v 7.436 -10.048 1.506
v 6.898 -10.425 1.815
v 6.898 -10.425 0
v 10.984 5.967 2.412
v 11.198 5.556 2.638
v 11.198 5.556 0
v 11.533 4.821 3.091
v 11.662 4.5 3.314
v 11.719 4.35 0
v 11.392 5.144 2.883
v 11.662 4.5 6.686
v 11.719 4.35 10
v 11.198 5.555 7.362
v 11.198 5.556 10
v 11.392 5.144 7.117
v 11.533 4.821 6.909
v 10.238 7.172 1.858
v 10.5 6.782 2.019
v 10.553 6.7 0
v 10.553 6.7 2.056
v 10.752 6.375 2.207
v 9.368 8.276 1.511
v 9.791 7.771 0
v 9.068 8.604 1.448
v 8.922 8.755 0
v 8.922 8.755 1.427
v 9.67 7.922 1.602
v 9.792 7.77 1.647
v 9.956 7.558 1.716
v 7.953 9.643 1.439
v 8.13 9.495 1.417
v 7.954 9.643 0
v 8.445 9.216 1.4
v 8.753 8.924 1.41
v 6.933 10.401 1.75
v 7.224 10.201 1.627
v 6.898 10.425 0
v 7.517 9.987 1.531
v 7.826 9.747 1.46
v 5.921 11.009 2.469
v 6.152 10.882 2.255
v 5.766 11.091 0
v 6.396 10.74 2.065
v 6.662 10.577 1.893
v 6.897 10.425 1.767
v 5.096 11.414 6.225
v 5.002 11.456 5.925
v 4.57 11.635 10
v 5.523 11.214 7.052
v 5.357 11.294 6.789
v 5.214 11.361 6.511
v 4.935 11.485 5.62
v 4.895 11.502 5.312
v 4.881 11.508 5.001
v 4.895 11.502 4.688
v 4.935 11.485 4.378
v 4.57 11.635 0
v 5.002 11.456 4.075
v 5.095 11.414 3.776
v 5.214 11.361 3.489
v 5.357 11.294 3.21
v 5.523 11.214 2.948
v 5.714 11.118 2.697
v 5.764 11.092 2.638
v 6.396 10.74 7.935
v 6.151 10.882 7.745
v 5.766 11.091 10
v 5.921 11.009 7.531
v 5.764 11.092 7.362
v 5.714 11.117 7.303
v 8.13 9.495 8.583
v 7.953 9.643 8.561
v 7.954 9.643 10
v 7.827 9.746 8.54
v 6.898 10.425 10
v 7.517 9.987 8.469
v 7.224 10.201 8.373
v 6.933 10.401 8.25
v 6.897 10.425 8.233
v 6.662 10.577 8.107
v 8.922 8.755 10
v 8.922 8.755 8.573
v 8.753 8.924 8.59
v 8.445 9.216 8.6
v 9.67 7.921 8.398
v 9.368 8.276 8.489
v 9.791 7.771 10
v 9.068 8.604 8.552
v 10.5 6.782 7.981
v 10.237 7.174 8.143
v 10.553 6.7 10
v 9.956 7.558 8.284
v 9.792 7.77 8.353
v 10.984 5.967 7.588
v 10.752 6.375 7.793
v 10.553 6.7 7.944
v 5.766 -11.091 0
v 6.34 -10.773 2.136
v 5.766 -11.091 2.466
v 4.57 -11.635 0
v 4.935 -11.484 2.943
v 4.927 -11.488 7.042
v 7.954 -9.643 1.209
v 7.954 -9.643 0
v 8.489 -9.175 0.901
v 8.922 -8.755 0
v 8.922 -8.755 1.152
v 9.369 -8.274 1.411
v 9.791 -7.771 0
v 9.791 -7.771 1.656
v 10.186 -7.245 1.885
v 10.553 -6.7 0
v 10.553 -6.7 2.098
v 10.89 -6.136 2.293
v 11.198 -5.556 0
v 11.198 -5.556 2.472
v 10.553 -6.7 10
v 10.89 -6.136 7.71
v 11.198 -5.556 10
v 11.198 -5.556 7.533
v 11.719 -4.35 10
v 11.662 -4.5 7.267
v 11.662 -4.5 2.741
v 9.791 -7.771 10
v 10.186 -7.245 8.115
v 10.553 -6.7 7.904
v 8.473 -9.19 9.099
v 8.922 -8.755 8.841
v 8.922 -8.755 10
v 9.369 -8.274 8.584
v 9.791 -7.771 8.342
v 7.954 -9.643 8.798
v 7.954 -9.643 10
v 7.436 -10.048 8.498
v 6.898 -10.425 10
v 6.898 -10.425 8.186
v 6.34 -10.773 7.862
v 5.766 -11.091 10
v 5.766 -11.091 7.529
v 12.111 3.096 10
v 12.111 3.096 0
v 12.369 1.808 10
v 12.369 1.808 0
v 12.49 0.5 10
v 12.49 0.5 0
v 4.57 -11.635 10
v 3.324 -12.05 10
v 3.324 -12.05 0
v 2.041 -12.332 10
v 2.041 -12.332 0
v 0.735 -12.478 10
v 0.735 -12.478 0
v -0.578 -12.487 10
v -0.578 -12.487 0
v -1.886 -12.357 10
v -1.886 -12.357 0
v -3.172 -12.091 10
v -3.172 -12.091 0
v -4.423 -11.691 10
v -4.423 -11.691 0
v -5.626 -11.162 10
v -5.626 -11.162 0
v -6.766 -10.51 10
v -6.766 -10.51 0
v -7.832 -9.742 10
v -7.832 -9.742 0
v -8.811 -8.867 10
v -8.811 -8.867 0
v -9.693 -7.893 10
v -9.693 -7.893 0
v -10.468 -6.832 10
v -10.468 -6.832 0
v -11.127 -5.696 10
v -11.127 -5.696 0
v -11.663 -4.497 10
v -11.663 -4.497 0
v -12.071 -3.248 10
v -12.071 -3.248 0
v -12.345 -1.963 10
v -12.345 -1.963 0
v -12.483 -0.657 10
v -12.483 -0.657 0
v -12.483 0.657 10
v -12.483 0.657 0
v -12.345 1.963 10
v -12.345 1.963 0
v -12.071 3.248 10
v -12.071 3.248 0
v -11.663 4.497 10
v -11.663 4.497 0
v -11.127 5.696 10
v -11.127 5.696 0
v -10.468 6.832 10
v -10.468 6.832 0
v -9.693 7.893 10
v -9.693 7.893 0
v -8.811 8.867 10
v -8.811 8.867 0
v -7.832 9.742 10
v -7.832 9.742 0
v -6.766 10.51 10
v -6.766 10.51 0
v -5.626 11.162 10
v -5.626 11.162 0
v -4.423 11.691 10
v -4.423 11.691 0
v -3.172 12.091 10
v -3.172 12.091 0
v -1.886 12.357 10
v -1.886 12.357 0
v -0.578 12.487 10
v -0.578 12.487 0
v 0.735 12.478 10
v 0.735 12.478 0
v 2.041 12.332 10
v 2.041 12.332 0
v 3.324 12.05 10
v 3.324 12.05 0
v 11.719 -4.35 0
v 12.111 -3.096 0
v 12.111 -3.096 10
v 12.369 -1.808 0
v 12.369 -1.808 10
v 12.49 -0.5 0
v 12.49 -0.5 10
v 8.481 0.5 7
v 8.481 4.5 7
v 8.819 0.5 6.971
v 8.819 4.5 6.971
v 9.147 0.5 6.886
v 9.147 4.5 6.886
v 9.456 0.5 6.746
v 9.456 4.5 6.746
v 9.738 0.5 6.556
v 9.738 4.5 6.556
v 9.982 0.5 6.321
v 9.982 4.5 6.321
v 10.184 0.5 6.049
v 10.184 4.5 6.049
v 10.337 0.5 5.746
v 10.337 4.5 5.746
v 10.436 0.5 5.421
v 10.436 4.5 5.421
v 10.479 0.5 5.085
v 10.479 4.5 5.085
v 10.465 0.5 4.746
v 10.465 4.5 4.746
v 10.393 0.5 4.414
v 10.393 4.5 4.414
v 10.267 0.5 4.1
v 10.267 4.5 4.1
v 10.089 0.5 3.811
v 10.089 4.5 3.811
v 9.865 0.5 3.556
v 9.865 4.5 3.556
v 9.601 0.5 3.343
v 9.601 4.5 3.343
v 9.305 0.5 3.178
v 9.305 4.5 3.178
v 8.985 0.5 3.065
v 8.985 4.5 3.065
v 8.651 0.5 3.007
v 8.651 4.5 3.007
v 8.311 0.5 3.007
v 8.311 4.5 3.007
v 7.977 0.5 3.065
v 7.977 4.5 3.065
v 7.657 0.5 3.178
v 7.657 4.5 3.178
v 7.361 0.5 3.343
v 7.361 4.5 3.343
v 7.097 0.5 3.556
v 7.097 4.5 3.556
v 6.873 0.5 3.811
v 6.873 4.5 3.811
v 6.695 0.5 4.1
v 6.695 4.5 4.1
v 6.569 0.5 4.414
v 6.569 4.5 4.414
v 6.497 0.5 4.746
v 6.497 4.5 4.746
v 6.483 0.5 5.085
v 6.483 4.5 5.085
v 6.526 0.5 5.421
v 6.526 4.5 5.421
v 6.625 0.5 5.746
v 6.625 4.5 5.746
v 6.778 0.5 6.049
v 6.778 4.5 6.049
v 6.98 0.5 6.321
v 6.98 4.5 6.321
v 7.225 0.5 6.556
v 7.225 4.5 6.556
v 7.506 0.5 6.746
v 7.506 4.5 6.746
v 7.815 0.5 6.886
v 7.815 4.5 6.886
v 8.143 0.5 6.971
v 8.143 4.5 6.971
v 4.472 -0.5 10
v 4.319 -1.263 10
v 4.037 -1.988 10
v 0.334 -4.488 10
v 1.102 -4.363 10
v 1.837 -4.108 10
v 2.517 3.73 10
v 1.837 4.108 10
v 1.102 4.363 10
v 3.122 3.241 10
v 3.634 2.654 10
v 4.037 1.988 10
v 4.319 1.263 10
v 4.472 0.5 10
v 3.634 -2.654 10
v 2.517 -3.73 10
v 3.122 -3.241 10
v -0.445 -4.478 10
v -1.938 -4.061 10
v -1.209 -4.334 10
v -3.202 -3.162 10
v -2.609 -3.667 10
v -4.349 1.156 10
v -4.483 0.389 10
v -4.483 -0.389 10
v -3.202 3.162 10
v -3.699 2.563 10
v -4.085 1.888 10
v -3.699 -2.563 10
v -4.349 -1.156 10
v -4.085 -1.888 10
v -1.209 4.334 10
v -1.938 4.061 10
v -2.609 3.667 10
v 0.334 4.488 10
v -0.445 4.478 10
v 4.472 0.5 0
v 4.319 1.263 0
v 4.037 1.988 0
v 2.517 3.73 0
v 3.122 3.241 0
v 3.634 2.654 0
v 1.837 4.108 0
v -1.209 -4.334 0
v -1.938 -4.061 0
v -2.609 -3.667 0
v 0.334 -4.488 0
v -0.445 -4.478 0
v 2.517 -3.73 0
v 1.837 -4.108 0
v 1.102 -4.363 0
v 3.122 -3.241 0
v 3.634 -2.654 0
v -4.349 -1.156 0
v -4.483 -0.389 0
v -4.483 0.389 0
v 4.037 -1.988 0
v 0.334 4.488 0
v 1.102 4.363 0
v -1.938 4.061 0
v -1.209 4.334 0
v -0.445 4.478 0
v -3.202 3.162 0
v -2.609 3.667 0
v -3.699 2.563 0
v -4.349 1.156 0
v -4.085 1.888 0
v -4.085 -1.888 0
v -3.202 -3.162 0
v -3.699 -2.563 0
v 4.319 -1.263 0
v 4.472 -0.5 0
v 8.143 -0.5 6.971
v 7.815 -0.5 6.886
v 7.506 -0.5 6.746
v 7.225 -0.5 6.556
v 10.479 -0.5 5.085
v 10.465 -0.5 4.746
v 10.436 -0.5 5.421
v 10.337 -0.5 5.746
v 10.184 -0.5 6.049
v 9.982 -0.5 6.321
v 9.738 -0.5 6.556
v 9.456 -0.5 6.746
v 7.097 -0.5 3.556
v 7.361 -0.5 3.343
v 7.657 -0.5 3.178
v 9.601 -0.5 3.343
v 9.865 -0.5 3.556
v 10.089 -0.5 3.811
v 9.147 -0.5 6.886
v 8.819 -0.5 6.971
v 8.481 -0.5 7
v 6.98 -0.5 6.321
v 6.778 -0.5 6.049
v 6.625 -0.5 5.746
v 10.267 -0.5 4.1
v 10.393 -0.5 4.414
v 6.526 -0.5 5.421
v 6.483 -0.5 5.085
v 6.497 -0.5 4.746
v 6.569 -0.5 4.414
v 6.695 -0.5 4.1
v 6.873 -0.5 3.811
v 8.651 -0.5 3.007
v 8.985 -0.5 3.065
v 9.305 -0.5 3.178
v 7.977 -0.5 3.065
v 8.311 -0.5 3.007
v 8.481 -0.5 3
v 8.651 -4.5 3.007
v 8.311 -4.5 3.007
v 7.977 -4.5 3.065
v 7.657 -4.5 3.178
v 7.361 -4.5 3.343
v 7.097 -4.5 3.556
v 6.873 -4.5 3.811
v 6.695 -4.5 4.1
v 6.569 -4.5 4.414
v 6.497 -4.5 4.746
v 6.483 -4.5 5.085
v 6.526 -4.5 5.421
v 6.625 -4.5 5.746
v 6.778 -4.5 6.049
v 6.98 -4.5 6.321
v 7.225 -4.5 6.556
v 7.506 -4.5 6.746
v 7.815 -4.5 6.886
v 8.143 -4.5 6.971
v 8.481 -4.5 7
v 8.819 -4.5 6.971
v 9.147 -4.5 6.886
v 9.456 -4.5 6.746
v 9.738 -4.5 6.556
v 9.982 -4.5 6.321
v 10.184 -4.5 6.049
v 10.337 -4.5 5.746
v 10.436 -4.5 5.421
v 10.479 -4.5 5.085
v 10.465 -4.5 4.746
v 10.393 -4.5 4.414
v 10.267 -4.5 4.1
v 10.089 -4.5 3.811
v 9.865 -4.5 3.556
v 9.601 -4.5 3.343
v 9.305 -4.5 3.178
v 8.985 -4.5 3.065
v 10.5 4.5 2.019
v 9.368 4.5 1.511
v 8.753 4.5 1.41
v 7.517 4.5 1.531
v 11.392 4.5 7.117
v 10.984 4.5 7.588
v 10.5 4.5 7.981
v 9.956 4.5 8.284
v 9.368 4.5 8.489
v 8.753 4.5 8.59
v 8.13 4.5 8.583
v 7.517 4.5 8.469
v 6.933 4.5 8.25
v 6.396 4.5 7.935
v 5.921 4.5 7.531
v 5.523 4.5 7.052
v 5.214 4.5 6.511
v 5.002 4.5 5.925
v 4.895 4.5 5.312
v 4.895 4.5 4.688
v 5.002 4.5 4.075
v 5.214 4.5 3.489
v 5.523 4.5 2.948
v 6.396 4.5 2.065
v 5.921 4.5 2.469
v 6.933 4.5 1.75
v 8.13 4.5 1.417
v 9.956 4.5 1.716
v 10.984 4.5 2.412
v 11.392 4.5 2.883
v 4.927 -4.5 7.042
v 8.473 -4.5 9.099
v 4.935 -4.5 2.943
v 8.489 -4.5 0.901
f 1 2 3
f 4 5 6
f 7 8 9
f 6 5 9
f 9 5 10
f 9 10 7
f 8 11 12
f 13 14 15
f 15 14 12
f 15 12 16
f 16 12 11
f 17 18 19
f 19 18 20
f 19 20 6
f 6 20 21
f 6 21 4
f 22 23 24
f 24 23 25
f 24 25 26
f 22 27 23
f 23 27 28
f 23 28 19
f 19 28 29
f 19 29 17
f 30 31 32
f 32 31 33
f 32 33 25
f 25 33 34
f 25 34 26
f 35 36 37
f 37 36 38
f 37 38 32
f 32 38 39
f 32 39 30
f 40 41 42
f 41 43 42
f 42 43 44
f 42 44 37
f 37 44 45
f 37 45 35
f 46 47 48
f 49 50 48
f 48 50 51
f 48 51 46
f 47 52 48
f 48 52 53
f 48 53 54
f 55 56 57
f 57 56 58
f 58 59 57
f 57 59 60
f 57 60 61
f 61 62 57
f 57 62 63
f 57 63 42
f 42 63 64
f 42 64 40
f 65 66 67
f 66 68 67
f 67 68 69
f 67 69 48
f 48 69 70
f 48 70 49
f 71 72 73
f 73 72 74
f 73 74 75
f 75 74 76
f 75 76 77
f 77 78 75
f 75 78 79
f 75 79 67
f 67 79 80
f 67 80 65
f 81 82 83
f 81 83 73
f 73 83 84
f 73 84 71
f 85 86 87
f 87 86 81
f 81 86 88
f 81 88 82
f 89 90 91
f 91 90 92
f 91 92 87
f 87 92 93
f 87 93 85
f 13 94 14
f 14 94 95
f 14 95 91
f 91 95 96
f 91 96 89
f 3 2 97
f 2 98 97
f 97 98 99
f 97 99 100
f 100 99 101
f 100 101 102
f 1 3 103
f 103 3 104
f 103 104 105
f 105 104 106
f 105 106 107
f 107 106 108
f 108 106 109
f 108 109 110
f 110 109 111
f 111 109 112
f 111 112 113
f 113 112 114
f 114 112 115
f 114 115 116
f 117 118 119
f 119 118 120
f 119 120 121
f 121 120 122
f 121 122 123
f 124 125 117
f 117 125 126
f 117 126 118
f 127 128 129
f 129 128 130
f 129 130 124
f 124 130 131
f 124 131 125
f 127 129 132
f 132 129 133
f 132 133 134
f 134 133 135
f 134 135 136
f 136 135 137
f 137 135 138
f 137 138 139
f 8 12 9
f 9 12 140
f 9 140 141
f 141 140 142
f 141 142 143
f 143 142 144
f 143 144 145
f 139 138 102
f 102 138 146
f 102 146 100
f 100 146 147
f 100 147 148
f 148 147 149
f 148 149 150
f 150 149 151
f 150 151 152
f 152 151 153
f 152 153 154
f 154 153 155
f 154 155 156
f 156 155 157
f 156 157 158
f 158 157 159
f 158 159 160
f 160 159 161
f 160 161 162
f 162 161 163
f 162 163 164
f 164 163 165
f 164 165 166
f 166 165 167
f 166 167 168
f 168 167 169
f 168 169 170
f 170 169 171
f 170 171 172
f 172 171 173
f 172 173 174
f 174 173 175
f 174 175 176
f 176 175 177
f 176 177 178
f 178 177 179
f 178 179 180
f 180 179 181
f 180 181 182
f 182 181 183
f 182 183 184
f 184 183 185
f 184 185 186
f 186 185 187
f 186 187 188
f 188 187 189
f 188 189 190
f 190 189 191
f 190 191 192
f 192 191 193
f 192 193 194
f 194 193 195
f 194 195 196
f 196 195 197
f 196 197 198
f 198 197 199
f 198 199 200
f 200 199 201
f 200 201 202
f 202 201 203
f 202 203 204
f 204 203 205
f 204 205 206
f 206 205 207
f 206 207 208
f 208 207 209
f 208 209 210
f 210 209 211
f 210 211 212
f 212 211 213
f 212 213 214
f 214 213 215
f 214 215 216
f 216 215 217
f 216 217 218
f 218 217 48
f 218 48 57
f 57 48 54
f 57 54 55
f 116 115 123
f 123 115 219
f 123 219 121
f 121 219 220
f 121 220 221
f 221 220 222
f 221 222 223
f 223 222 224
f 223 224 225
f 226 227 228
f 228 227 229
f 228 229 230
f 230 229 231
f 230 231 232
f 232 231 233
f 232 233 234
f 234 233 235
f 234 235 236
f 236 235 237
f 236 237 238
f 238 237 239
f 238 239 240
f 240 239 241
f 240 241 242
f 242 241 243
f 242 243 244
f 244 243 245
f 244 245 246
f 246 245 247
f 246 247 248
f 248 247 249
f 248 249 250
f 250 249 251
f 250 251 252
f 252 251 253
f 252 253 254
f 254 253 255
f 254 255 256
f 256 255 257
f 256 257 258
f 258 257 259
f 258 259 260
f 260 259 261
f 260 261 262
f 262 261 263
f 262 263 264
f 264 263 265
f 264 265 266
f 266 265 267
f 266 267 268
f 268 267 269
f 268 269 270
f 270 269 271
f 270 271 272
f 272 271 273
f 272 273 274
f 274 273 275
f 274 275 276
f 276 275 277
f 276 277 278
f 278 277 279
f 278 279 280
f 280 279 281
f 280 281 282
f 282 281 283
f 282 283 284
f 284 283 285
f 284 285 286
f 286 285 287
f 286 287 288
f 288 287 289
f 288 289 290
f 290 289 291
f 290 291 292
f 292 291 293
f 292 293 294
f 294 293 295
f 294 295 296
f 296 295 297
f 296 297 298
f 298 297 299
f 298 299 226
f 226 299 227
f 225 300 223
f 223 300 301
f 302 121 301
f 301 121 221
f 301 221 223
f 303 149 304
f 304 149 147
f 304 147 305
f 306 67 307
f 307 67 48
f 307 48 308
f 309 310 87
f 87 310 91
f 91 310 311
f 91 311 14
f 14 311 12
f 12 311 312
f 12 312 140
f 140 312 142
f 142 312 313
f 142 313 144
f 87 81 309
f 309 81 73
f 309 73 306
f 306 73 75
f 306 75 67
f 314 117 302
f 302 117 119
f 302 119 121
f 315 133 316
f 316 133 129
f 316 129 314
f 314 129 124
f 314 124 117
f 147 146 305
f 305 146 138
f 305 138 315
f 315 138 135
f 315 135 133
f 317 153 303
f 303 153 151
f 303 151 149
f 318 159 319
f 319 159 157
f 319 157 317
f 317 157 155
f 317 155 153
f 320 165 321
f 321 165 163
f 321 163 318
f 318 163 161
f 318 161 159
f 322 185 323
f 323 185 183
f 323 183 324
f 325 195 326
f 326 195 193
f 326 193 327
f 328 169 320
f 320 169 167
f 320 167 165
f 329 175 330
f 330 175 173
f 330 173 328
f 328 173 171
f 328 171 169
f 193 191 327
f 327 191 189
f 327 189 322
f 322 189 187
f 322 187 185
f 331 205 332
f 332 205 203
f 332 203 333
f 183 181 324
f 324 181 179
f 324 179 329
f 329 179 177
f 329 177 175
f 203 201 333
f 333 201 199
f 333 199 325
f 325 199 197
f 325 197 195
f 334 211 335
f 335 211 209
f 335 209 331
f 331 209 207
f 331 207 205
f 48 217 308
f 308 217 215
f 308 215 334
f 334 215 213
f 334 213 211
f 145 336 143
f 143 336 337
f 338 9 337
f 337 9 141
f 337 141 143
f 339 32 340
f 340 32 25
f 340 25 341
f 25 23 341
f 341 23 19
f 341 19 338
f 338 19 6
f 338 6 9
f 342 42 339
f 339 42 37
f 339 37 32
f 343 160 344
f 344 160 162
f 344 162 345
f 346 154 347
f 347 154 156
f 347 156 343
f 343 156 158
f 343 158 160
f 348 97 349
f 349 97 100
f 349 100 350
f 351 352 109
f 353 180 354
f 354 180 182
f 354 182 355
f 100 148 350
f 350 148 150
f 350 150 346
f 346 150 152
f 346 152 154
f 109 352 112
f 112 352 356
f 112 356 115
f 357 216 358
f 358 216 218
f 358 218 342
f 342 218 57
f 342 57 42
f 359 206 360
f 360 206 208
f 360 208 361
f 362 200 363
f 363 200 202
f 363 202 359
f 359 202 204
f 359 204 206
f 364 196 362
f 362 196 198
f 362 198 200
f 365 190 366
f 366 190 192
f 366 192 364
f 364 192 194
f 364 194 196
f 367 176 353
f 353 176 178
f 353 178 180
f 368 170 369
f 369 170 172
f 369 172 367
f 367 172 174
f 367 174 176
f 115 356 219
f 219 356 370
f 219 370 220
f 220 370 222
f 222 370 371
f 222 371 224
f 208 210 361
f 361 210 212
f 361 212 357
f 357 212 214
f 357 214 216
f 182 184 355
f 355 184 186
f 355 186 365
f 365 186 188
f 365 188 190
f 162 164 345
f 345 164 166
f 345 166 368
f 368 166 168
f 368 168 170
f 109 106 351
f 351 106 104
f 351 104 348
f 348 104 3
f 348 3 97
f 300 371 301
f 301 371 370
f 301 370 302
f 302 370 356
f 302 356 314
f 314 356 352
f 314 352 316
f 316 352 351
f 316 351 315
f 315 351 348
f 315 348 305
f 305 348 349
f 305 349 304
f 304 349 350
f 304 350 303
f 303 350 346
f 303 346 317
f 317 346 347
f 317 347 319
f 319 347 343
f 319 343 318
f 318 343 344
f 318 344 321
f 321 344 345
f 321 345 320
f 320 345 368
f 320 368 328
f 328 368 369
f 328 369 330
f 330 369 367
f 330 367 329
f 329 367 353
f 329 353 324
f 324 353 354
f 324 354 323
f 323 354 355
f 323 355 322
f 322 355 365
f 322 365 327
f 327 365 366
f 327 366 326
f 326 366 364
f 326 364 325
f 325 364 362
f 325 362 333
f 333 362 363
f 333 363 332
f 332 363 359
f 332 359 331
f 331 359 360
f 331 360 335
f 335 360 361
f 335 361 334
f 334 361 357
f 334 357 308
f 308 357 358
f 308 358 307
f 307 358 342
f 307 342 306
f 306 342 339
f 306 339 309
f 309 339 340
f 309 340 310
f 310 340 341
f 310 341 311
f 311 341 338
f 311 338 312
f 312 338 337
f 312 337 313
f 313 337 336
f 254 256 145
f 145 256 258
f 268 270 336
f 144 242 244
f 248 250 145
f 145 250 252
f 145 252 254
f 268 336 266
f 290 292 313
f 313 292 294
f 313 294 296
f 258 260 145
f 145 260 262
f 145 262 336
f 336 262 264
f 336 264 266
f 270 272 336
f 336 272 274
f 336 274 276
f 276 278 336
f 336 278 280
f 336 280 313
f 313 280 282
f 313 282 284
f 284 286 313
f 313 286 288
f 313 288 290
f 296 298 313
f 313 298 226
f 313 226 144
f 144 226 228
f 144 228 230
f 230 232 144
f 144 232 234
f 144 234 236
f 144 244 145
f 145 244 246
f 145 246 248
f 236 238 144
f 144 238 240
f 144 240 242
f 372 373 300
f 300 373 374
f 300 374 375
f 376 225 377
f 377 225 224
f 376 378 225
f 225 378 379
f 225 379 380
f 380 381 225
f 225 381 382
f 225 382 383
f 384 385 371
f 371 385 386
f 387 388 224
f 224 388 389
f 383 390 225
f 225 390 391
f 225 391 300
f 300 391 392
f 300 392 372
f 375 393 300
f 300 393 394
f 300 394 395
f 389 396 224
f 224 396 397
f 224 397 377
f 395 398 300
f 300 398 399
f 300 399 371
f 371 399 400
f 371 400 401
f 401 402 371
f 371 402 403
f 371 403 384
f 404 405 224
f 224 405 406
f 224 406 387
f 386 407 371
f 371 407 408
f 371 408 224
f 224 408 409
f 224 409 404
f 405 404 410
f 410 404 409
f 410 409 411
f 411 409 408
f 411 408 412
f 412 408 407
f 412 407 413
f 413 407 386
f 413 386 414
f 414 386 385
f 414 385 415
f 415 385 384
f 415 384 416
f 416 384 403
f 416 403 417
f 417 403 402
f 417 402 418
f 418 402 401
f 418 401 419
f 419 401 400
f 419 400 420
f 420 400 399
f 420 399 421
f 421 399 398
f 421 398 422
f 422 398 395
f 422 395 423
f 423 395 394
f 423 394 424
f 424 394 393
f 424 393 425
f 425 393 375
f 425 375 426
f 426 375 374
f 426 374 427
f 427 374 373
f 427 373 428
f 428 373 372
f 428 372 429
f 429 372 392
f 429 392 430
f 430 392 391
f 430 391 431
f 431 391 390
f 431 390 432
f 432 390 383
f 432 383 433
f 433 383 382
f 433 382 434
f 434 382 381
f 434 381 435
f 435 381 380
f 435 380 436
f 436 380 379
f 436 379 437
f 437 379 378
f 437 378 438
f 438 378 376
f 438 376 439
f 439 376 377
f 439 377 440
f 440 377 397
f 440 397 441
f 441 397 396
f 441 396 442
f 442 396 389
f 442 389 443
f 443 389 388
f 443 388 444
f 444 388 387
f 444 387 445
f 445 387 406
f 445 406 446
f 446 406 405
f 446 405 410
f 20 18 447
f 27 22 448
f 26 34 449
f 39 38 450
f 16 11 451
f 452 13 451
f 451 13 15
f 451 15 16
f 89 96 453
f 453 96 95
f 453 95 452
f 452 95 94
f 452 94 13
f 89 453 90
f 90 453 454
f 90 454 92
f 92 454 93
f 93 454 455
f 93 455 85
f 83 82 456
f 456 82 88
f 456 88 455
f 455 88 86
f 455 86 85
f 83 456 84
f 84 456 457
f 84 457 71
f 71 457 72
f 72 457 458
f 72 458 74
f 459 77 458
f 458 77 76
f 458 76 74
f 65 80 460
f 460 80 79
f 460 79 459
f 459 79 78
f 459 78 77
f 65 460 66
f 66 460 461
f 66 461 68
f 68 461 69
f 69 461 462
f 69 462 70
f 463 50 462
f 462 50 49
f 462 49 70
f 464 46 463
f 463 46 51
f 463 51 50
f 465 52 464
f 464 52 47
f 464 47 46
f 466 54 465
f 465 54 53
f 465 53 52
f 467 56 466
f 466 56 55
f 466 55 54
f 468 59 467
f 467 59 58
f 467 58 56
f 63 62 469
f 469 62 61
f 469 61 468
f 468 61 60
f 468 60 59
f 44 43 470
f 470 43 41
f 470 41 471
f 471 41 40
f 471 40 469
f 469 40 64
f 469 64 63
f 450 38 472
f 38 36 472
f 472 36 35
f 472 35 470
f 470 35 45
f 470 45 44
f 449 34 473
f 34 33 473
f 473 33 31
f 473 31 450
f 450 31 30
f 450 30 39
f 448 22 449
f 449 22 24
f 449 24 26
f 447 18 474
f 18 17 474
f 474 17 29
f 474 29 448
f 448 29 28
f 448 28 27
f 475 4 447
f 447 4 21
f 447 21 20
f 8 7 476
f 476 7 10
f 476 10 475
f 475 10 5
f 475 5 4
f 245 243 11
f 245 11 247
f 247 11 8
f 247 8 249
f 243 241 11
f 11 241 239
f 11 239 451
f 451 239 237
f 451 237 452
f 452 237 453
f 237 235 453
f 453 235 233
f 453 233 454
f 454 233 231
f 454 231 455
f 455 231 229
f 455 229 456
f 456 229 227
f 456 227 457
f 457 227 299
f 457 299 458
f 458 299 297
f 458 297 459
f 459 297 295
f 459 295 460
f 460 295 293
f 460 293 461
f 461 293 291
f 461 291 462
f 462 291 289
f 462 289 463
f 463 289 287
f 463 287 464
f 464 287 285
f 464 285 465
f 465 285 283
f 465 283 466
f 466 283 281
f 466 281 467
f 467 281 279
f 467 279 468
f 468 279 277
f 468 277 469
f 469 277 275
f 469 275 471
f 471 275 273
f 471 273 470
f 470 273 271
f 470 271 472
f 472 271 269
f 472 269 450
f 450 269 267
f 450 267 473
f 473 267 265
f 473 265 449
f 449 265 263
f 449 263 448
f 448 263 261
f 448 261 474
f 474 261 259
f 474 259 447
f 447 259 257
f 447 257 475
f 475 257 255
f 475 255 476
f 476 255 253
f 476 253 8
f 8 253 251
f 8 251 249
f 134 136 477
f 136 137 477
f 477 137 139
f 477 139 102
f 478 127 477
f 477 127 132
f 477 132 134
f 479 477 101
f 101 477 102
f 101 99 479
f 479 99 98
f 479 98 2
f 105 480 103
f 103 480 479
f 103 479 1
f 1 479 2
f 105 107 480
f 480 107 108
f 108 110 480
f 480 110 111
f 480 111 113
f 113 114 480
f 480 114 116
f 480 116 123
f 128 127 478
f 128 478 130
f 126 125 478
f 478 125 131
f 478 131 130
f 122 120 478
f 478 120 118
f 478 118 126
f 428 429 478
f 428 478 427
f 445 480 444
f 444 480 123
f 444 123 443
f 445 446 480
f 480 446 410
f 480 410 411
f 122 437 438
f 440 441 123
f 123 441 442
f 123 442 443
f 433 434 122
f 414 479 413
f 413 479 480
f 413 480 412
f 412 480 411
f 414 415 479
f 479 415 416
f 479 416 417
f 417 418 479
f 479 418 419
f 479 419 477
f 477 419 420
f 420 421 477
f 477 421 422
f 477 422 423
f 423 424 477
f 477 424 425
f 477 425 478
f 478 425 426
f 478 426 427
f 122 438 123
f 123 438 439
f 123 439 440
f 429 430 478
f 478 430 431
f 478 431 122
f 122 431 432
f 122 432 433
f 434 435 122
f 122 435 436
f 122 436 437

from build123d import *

# Parameters (mm, degrees)
SKETCH1_R               = 12.5
SKETCH1_R_2             = 4.5
BOSS_EXTRUDE1_DEPTH     = 10
SKETCH2_W               = 9.983536535
SKETCH2_H               = 1
CUT_EXTRUDE1_DEPTH      = 21.310096012
CUT_EXTRUDE2_DEPTH      = 21.310096012
CUT_EXTRUDE2_DEPTH_BACK = 21.310096012
SKETCH3_R               = 2
CUT_EXTRUDE3_REACH      = 25.351
SKETCH4_R               = 3.6
CUT_EXTRUDE4_REACH      = 25.351
CUT_EXTRUDE4_END_RADIUS = 12.5


with BuildPart() as part:
    # Sketch1 → Boss-Extrude1 (new body)
    with BuildSketch(Plane.XY):
        Circle(SKETCH1_R)
        Circle(SKETCH1_R_2, mode=Mode.SUBTRACT)
    extrude(amount=BOSS_EXTRUDE1_DEPTH)

    # Sketch2 → Cut-Extrude1 (cut, through all)
    with BuildSketch(Plane.XY.offset(10)):
        with Locations((8.497672296, 0)):
            Rectangle(SKETCH2_W, SKETCH2_H)
    extrude(amount=-CUT_EXTRUDE1_DEPTH, mode=Mode.SUBTRACT)

    # Sketch3 → Cut-Extrude2 (cut, two sides: drawn at the far end of the back side and taken through both)
    with BuildSketch(Plane(origin=(0, 0, 0), x_dir=(1, 0, 0), z_dir=(0, 1, 0)).offset(-CUT_EXTRUDE2_DEPTH_BACK)):
        with Locations(Location((8.481065976, -5, 0), (0, 0, 270))):
            Circle(SKETCH3_R)
    extrude(amount=CUT_EXTRUDE2_DEPTH + CUT_EXTRUDE2_DEPTH_BACK, mode=Mode.SUBTRACT)

    # Sketch4 → Cut-Extrude3 (cut, up to next)
    with BuildSketch(Plane(origin=(0, 4.5, 0), x_dir=(1, 0, 0), z_dir=(0, 1, 0)), mode=Mode.PRIVATE) as cut_extrude3_sk1:
        with Locations((8.481065976, -5)):
            Circle(SKETCH4_R)
    cut_extrude3_tool1 = extrude(cut_extrude3_sk1.sketch, amount=CUT_EXTRUDE3_REACH, mode=Mode.PRIVATE) & part.part
    add(cut_extrude3_tool1.solids().sort_by_distance((8.481066, 4.5, 5))[0], mode=Mode.SUBTRACT)

    # Cut-Extrude4: up to this cylinder (the profile starts inside it)
    cut_extrude4_end = Plane(origin=(0, 0, 5), z_dir=(0, 0, -1)) * Cylinder(CUT_EXTRUDE4_END_RADIUS, 76.702, mode=Mode.PRIVATE)
    # Sketch5 → Cut-Extrude4 (cut, up to the surface)
    with BuildSketch(Plane(origin=(0, -4.5, 0), x_dir=(1, 0, 0), z_dir=(0, 1, 0)), mode=Mode.PRIVATE) as cut_extrude4_sk1:
        Polygon((8.472706177, -9.099178387), (12.026878694, -7.056828991), (12.035238493, -2.957650604), (8.489425774, -0.900821613), (4.935253257, -2.943171009), (4.926893459, -7.042349396), align=None)
    cut_extrude4_tool1 = extrude(cut_extrude4_sk1.sketch, amount=-CUT_EXTRUDE4_REACH, mode=Mode.PRIVATE) & cut_extrude4_end
    add(cut_extrude4_tool1.solids().sort_by_distance((8.481066, -4.5, 5))[0], mode=Mode.SUBTRACT)


solid = part.part
